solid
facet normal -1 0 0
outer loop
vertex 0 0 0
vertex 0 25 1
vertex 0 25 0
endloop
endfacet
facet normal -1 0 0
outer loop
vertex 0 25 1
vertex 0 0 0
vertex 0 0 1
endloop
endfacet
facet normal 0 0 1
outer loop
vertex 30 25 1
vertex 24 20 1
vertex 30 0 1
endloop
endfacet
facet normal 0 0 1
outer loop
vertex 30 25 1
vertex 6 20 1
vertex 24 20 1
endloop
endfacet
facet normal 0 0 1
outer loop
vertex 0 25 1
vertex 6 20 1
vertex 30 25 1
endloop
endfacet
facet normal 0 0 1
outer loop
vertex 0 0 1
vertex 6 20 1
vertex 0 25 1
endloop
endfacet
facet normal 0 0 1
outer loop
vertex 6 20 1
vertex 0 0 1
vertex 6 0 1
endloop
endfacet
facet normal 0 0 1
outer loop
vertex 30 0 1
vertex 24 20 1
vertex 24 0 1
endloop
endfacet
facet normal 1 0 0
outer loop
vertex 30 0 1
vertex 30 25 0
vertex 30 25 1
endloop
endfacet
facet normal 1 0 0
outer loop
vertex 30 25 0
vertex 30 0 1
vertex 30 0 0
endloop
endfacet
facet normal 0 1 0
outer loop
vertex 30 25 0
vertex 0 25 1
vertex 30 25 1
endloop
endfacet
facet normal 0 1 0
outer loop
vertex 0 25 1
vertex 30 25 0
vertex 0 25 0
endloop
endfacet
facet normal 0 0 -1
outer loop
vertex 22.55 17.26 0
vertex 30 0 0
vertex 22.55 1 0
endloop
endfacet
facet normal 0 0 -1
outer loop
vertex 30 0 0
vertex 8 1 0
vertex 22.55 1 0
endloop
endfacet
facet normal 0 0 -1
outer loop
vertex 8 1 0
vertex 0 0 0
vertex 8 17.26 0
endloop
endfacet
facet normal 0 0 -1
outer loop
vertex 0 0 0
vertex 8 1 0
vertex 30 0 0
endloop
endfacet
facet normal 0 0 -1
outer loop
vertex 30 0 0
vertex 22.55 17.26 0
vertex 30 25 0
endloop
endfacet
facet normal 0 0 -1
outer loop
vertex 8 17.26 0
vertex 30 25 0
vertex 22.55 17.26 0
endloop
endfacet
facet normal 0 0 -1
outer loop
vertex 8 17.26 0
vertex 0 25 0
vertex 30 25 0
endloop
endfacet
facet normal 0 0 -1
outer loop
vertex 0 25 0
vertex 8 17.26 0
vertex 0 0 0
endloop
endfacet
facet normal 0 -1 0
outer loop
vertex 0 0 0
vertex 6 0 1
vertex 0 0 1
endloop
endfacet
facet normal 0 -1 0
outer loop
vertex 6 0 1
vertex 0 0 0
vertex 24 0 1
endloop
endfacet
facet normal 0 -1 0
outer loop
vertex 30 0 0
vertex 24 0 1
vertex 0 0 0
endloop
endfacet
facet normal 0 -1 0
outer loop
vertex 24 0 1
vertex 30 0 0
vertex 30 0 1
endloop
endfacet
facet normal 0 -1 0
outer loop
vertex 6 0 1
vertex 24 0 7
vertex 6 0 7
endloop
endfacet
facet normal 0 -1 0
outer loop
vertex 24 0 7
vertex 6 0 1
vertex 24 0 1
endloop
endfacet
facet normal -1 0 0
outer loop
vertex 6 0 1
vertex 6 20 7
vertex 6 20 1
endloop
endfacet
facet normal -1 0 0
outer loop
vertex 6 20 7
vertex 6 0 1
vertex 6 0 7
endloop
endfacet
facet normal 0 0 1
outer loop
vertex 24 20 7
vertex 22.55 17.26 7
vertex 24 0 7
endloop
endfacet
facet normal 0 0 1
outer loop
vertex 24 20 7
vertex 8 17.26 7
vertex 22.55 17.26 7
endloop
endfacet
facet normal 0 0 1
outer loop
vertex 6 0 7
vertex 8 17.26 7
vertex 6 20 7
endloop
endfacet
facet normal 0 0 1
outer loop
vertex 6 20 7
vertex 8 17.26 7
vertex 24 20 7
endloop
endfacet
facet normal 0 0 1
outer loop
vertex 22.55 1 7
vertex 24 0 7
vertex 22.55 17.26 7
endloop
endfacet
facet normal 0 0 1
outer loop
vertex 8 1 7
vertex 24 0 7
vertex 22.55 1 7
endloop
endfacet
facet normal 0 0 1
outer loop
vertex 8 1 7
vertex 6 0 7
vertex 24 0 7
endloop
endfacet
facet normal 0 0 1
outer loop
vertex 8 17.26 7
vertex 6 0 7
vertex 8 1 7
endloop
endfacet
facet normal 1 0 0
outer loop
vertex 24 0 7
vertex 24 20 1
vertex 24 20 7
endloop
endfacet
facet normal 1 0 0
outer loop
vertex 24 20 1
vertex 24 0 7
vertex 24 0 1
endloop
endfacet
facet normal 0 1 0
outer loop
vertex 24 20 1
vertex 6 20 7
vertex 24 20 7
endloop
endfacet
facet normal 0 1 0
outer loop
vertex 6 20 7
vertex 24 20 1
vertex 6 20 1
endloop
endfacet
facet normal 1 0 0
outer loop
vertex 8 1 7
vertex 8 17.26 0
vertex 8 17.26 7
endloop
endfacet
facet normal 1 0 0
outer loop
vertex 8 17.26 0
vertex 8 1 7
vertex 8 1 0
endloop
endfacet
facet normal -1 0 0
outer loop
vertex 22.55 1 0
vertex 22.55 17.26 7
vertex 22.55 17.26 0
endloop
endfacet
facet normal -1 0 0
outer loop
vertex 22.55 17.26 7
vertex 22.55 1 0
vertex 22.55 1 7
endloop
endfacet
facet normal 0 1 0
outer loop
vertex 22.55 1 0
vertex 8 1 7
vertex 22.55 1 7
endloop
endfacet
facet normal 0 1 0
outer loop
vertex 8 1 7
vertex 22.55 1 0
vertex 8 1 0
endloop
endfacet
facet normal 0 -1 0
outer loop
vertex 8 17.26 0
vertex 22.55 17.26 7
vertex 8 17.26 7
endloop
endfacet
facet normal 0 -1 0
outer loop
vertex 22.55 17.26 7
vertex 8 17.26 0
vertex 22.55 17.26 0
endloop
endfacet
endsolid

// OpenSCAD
difference() {
    union() {
        cube([30,25,1]);
        translate([6,0,0]) cube([18,20,7]);
    }
    translate([8,1,0]) cube([14.45+0.1,16.16+0.1,10]);
}
